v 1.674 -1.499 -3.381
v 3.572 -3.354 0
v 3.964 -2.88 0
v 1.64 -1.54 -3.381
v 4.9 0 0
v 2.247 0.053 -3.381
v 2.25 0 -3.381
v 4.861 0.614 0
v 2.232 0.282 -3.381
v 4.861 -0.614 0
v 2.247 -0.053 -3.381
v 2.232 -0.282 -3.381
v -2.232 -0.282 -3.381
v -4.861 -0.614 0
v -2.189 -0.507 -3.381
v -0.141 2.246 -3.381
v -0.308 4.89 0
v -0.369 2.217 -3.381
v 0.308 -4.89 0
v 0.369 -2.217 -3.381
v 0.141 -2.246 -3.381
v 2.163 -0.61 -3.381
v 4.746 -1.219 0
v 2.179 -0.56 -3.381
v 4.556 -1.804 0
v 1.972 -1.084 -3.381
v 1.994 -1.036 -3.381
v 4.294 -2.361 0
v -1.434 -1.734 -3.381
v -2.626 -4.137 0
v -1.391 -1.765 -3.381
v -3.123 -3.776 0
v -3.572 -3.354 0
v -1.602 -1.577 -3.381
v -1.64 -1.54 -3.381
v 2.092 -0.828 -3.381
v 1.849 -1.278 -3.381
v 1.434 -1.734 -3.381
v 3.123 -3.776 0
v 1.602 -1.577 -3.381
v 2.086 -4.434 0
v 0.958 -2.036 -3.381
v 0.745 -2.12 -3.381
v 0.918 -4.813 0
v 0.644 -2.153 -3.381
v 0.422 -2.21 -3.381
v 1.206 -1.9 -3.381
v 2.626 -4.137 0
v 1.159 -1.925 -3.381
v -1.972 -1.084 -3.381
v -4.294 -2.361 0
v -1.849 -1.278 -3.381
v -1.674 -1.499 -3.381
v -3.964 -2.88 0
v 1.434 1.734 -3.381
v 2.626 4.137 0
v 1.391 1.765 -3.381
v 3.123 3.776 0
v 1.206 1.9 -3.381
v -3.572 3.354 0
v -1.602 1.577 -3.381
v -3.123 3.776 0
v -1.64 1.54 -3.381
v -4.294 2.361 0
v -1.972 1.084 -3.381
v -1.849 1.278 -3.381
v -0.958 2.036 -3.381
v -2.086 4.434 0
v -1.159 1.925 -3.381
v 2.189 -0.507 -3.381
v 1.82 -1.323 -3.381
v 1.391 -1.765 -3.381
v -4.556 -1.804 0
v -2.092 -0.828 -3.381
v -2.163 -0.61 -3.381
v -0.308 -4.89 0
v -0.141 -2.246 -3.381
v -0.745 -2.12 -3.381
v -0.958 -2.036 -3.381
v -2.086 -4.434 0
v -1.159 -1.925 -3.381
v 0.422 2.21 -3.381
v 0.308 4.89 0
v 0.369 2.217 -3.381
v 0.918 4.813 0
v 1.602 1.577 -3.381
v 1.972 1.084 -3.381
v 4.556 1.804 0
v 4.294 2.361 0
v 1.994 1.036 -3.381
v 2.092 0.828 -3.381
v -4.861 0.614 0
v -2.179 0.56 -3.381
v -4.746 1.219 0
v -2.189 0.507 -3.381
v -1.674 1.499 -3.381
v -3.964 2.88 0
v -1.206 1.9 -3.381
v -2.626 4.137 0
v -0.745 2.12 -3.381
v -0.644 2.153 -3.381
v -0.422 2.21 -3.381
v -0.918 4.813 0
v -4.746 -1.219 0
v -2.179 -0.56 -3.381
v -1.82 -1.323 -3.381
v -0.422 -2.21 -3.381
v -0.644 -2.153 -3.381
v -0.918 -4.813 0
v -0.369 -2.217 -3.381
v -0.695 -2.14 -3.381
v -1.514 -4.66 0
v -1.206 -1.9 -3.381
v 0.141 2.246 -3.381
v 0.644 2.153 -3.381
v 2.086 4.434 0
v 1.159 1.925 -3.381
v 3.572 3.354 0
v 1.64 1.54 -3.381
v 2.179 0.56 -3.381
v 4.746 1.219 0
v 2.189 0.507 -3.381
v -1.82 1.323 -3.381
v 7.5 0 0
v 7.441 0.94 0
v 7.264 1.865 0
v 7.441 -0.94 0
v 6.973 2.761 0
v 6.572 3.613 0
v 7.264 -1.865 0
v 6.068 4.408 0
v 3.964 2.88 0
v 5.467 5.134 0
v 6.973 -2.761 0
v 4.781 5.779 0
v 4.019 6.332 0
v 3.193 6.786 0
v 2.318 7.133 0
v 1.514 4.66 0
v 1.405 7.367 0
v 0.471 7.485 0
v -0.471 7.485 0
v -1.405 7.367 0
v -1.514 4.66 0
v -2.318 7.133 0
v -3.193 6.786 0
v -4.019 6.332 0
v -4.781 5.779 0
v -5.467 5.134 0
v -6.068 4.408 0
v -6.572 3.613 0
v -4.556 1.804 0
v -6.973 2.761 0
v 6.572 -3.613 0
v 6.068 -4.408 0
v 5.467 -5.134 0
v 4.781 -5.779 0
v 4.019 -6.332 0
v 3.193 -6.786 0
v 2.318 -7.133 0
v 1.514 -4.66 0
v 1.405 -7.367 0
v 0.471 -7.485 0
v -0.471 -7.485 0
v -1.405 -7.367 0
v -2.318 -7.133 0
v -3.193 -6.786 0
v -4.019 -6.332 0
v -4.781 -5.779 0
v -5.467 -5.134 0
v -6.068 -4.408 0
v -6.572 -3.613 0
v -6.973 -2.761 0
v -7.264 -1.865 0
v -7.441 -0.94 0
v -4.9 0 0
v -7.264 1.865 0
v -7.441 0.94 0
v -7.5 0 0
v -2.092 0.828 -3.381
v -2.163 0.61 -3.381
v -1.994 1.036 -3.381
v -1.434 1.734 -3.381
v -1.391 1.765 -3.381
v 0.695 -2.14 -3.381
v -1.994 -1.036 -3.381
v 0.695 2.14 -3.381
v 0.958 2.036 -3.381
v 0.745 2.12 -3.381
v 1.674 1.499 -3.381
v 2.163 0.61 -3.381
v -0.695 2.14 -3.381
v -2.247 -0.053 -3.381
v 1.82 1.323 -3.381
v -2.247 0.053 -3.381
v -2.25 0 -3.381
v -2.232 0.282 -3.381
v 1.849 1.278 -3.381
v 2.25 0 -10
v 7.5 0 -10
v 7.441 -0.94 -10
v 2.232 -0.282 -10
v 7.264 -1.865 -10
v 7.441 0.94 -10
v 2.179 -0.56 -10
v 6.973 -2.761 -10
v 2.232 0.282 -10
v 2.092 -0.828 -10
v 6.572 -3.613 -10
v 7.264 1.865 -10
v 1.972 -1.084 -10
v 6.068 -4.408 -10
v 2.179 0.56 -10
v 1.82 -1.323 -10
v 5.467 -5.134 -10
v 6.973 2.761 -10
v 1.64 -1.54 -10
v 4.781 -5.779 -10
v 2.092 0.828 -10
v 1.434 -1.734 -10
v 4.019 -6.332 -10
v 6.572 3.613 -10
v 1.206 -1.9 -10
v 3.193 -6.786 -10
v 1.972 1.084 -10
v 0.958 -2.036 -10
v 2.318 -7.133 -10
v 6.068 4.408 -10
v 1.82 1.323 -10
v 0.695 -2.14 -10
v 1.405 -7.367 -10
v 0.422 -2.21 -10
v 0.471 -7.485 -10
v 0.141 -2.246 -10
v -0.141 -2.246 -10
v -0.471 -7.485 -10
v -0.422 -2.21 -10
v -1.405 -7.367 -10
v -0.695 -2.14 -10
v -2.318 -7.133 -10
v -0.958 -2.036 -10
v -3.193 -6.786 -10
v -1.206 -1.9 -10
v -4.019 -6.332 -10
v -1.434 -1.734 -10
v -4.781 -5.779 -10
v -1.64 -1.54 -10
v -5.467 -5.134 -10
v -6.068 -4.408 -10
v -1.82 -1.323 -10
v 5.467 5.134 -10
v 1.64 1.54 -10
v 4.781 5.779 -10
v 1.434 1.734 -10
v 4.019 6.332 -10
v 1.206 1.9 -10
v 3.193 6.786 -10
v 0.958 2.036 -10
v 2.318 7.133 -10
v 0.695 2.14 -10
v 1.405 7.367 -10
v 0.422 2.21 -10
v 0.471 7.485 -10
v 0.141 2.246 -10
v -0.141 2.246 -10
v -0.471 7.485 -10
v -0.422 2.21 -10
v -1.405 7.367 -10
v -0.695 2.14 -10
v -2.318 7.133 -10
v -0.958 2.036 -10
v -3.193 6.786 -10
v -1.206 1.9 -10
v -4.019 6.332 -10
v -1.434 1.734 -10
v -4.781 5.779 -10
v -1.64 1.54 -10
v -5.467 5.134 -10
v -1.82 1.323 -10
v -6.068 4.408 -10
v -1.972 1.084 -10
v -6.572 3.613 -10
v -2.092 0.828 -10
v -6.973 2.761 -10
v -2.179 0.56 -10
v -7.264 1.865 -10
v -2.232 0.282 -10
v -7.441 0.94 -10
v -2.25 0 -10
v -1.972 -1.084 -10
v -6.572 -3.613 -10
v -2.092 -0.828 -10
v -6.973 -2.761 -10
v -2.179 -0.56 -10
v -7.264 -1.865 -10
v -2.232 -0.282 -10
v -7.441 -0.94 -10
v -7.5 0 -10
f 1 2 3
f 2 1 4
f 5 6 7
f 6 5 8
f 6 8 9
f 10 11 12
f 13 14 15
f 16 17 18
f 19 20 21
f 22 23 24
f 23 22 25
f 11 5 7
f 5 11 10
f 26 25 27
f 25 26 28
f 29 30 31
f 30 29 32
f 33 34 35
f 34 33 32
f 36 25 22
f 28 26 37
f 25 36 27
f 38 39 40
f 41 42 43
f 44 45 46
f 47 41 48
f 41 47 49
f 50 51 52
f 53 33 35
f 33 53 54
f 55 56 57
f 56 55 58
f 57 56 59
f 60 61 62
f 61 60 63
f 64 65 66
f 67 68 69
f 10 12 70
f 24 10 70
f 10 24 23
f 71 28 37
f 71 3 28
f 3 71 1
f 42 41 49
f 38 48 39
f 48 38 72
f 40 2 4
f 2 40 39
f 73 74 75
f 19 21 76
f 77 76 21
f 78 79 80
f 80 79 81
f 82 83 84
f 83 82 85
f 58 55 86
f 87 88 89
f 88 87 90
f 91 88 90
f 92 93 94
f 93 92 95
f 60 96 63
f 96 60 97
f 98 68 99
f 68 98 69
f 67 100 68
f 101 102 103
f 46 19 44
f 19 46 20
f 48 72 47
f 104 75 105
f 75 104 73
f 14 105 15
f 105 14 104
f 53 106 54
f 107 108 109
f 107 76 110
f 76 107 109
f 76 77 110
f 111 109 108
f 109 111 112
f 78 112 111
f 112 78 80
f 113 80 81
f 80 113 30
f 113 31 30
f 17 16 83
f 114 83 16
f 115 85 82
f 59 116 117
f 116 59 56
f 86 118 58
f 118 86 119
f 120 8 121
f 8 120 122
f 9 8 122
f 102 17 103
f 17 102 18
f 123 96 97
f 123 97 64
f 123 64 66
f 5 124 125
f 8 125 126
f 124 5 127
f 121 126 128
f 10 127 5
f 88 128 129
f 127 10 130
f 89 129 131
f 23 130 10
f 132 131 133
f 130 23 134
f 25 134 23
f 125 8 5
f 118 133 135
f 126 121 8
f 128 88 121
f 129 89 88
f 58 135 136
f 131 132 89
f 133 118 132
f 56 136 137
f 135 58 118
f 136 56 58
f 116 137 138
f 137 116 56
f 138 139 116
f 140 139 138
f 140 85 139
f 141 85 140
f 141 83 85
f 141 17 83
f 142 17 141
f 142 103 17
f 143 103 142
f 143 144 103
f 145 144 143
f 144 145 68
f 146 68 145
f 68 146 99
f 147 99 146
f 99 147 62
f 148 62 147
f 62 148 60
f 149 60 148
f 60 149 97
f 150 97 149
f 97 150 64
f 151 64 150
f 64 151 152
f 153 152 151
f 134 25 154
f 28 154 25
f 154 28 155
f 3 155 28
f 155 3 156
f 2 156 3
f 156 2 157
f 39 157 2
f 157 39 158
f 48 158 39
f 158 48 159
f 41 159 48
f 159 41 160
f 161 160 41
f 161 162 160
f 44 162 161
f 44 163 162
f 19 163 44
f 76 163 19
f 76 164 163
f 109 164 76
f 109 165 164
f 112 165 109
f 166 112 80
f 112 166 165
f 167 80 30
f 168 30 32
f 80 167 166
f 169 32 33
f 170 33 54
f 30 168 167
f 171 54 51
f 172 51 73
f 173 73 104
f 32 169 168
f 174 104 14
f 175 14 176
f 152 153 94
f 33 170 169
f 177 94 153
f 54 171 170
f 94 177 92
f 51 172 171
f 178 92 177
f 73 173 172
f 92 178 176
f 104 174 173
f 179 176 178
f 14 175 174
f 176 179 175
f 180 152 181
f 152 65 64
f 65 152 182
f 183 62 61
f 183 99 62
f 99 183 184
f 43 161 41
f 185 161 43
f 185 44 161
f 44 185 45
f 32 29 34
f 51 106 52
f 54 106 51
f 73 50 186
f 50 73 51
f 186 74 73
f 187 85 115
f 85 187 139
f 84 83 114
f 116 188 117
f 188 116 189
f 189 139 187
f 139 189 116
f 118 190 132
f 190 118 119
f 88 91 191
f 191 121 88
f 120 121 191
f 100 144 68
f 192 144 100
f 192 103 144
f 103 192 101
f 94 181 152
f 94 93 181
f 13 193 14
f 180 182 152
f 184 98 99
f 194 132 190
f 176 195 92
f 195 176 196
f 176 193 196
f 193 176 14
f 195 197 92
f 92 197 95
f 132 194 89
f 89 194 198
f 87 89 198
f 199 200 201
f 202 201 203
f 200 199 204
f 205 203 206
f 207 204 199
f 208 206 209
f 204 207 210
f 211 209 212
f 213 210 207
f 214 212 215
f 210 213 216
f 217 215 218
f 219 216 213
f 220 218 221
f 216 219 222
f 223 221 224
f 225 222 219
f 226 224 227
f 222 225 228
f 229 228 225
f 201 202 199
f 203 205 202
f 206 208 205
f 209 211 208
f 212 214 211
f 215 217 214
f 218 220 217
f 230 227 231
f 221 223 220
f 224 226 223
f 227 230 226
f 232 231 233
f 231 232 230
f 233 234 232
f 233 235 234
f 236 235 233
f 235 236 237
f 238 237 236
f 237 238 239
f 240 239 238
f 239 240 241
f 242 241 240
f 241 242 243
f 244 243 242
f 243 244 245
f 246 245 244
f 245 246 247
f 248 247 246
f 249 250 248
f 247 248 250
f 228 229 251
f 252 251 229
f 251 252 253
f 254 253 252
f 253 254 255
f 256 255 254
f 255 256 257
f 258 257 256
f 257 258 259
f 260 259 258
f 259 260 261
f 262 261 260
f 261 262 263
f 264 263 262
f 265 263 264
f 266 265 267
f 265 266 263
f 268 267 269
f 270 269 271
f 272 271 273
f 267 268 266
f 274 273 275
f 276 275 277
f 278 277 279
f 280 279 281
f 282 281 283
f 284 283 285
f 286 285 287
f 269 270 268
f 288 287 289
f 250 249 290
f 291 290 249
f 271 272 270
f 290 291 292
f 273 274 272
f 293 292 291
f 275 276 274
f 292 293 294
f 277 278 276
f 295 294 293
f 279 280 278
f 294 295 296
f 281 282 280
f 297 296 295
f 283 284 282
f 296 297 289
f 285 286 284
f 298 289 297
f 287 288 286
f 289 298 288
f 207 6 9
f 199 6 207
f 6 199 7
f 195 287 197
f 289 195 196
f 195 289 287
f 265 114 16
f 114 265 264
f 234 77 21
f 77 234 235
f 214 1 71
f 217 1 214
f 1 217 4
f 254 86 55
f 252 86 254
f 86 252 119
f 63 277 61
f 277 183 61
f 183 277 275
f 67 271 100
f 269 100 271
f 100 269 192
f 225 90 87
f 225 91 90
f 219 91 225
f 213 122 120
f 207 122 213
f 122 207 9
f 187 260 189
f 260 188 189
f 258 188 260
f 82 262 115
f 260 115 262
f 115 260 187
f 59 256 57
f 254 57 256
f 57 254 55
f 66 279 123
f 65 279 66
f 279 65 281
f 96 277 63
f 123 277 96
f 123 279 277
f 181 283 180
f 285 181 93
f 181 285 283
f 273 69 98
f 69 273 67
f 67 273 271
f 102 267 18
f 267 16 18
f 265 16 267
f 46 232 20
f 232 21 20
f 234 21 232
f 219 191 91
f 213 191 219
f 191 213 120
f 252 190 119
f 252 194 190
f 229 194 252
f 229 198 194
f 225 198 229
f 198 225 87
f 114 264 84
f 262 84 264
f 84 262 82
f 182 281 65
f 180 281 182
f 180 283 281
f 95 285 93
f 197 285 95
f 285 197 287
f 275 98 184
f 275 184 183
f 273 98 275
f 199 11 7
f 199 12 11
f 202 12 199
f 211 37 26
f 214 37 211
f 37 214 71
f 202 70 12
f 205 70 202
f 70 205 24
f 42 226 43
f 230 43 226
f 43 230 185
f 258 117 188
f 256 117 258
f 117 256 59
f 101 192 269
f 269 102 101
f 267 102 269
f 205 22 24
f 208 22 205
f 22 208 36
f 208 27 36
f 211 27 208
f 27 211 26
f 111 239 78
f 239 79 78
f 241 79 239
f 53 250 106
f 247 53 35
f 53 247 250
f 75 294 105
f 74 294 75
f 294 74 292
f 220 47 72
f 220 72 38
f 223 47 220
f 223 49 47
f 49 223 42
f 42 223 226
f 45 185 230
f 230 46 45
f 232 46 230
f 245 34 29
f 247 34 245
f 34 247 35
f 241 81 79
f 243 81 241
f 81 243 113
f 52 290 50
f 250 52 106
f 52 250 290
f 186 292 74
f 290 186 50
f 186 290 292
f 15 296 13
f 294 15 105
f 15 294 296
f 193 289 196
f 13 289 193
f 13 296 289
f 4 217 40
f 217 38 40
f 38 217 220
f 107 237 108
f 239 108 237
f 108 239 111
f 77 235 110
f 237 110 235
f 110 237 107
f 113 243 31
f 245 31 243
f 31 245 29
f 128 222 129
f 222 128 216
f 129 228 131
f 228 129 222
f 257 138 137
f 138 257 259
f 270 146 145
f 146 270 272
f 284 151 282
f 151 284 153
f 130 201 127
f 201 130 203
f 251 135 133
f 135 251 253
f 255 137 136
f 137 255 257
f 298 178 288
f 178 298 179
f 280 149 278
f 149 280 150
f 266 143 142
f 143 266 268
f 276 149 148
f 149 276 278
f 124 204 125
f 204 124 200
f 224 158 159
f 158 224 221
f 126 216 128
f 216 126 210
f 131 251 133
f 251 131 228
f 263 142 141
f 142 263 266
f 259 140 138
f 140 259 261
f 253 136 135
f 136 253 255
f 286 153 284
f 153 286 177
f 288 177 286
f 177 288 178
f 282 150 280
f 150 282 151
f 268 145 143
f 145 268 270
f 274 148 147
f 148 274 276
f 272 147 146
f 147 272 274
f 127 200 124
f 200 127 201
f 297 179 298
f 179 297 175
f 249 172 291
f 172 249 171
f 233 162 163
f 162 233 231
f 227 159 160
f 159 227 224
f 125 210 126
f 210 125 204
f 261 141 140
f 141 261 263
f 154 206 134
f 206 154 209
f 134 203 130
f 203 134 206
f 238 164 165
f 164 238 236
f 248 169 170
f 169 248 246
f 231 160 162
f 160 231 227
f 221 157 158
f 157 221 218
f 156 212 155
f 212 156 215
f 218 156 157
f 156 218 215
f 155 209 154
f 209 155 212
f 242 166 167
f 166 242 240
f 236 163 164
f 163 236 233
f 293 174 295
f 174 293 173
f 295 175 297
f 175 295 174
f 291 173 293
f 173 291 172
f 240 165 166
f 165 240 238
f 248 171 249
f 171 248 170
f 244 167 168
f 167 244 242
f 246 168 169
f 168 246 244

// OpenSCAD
$fn = 50;


difference() {
	union() {
		translate(v = [0, 0, -10.0000000000]) {
			cylinder(h = 10, r = 7.5000000000);
		}
	}
	union() {
		translate(v = [0, 0, 0]) {
			rotate(a = [0, 0, 0]) {
				difference() {
					union() {
						translate(v = [0, 0, -3.7000000000]) {
							cylinder(h = 3.7000000000, r = 7.5000000000, r1 = 2.0000000000, r2 = 4.9000000000);
						}
						translate(v = [0, 0, -10.0000000000]) {
							cylinder(h = 10, r = 2.0000000000);
						}
						translate(v = [0, 0, -10.0000000000]) {
							cylinder(h = 10, r = 2.2500000000);
						}
						translate(v = [0, 0, -10.0000000000]) {
							cylinder(h = 10, r = 2.0000000000);
						}
					}
					union();
				}
			}
		}
	}
}
